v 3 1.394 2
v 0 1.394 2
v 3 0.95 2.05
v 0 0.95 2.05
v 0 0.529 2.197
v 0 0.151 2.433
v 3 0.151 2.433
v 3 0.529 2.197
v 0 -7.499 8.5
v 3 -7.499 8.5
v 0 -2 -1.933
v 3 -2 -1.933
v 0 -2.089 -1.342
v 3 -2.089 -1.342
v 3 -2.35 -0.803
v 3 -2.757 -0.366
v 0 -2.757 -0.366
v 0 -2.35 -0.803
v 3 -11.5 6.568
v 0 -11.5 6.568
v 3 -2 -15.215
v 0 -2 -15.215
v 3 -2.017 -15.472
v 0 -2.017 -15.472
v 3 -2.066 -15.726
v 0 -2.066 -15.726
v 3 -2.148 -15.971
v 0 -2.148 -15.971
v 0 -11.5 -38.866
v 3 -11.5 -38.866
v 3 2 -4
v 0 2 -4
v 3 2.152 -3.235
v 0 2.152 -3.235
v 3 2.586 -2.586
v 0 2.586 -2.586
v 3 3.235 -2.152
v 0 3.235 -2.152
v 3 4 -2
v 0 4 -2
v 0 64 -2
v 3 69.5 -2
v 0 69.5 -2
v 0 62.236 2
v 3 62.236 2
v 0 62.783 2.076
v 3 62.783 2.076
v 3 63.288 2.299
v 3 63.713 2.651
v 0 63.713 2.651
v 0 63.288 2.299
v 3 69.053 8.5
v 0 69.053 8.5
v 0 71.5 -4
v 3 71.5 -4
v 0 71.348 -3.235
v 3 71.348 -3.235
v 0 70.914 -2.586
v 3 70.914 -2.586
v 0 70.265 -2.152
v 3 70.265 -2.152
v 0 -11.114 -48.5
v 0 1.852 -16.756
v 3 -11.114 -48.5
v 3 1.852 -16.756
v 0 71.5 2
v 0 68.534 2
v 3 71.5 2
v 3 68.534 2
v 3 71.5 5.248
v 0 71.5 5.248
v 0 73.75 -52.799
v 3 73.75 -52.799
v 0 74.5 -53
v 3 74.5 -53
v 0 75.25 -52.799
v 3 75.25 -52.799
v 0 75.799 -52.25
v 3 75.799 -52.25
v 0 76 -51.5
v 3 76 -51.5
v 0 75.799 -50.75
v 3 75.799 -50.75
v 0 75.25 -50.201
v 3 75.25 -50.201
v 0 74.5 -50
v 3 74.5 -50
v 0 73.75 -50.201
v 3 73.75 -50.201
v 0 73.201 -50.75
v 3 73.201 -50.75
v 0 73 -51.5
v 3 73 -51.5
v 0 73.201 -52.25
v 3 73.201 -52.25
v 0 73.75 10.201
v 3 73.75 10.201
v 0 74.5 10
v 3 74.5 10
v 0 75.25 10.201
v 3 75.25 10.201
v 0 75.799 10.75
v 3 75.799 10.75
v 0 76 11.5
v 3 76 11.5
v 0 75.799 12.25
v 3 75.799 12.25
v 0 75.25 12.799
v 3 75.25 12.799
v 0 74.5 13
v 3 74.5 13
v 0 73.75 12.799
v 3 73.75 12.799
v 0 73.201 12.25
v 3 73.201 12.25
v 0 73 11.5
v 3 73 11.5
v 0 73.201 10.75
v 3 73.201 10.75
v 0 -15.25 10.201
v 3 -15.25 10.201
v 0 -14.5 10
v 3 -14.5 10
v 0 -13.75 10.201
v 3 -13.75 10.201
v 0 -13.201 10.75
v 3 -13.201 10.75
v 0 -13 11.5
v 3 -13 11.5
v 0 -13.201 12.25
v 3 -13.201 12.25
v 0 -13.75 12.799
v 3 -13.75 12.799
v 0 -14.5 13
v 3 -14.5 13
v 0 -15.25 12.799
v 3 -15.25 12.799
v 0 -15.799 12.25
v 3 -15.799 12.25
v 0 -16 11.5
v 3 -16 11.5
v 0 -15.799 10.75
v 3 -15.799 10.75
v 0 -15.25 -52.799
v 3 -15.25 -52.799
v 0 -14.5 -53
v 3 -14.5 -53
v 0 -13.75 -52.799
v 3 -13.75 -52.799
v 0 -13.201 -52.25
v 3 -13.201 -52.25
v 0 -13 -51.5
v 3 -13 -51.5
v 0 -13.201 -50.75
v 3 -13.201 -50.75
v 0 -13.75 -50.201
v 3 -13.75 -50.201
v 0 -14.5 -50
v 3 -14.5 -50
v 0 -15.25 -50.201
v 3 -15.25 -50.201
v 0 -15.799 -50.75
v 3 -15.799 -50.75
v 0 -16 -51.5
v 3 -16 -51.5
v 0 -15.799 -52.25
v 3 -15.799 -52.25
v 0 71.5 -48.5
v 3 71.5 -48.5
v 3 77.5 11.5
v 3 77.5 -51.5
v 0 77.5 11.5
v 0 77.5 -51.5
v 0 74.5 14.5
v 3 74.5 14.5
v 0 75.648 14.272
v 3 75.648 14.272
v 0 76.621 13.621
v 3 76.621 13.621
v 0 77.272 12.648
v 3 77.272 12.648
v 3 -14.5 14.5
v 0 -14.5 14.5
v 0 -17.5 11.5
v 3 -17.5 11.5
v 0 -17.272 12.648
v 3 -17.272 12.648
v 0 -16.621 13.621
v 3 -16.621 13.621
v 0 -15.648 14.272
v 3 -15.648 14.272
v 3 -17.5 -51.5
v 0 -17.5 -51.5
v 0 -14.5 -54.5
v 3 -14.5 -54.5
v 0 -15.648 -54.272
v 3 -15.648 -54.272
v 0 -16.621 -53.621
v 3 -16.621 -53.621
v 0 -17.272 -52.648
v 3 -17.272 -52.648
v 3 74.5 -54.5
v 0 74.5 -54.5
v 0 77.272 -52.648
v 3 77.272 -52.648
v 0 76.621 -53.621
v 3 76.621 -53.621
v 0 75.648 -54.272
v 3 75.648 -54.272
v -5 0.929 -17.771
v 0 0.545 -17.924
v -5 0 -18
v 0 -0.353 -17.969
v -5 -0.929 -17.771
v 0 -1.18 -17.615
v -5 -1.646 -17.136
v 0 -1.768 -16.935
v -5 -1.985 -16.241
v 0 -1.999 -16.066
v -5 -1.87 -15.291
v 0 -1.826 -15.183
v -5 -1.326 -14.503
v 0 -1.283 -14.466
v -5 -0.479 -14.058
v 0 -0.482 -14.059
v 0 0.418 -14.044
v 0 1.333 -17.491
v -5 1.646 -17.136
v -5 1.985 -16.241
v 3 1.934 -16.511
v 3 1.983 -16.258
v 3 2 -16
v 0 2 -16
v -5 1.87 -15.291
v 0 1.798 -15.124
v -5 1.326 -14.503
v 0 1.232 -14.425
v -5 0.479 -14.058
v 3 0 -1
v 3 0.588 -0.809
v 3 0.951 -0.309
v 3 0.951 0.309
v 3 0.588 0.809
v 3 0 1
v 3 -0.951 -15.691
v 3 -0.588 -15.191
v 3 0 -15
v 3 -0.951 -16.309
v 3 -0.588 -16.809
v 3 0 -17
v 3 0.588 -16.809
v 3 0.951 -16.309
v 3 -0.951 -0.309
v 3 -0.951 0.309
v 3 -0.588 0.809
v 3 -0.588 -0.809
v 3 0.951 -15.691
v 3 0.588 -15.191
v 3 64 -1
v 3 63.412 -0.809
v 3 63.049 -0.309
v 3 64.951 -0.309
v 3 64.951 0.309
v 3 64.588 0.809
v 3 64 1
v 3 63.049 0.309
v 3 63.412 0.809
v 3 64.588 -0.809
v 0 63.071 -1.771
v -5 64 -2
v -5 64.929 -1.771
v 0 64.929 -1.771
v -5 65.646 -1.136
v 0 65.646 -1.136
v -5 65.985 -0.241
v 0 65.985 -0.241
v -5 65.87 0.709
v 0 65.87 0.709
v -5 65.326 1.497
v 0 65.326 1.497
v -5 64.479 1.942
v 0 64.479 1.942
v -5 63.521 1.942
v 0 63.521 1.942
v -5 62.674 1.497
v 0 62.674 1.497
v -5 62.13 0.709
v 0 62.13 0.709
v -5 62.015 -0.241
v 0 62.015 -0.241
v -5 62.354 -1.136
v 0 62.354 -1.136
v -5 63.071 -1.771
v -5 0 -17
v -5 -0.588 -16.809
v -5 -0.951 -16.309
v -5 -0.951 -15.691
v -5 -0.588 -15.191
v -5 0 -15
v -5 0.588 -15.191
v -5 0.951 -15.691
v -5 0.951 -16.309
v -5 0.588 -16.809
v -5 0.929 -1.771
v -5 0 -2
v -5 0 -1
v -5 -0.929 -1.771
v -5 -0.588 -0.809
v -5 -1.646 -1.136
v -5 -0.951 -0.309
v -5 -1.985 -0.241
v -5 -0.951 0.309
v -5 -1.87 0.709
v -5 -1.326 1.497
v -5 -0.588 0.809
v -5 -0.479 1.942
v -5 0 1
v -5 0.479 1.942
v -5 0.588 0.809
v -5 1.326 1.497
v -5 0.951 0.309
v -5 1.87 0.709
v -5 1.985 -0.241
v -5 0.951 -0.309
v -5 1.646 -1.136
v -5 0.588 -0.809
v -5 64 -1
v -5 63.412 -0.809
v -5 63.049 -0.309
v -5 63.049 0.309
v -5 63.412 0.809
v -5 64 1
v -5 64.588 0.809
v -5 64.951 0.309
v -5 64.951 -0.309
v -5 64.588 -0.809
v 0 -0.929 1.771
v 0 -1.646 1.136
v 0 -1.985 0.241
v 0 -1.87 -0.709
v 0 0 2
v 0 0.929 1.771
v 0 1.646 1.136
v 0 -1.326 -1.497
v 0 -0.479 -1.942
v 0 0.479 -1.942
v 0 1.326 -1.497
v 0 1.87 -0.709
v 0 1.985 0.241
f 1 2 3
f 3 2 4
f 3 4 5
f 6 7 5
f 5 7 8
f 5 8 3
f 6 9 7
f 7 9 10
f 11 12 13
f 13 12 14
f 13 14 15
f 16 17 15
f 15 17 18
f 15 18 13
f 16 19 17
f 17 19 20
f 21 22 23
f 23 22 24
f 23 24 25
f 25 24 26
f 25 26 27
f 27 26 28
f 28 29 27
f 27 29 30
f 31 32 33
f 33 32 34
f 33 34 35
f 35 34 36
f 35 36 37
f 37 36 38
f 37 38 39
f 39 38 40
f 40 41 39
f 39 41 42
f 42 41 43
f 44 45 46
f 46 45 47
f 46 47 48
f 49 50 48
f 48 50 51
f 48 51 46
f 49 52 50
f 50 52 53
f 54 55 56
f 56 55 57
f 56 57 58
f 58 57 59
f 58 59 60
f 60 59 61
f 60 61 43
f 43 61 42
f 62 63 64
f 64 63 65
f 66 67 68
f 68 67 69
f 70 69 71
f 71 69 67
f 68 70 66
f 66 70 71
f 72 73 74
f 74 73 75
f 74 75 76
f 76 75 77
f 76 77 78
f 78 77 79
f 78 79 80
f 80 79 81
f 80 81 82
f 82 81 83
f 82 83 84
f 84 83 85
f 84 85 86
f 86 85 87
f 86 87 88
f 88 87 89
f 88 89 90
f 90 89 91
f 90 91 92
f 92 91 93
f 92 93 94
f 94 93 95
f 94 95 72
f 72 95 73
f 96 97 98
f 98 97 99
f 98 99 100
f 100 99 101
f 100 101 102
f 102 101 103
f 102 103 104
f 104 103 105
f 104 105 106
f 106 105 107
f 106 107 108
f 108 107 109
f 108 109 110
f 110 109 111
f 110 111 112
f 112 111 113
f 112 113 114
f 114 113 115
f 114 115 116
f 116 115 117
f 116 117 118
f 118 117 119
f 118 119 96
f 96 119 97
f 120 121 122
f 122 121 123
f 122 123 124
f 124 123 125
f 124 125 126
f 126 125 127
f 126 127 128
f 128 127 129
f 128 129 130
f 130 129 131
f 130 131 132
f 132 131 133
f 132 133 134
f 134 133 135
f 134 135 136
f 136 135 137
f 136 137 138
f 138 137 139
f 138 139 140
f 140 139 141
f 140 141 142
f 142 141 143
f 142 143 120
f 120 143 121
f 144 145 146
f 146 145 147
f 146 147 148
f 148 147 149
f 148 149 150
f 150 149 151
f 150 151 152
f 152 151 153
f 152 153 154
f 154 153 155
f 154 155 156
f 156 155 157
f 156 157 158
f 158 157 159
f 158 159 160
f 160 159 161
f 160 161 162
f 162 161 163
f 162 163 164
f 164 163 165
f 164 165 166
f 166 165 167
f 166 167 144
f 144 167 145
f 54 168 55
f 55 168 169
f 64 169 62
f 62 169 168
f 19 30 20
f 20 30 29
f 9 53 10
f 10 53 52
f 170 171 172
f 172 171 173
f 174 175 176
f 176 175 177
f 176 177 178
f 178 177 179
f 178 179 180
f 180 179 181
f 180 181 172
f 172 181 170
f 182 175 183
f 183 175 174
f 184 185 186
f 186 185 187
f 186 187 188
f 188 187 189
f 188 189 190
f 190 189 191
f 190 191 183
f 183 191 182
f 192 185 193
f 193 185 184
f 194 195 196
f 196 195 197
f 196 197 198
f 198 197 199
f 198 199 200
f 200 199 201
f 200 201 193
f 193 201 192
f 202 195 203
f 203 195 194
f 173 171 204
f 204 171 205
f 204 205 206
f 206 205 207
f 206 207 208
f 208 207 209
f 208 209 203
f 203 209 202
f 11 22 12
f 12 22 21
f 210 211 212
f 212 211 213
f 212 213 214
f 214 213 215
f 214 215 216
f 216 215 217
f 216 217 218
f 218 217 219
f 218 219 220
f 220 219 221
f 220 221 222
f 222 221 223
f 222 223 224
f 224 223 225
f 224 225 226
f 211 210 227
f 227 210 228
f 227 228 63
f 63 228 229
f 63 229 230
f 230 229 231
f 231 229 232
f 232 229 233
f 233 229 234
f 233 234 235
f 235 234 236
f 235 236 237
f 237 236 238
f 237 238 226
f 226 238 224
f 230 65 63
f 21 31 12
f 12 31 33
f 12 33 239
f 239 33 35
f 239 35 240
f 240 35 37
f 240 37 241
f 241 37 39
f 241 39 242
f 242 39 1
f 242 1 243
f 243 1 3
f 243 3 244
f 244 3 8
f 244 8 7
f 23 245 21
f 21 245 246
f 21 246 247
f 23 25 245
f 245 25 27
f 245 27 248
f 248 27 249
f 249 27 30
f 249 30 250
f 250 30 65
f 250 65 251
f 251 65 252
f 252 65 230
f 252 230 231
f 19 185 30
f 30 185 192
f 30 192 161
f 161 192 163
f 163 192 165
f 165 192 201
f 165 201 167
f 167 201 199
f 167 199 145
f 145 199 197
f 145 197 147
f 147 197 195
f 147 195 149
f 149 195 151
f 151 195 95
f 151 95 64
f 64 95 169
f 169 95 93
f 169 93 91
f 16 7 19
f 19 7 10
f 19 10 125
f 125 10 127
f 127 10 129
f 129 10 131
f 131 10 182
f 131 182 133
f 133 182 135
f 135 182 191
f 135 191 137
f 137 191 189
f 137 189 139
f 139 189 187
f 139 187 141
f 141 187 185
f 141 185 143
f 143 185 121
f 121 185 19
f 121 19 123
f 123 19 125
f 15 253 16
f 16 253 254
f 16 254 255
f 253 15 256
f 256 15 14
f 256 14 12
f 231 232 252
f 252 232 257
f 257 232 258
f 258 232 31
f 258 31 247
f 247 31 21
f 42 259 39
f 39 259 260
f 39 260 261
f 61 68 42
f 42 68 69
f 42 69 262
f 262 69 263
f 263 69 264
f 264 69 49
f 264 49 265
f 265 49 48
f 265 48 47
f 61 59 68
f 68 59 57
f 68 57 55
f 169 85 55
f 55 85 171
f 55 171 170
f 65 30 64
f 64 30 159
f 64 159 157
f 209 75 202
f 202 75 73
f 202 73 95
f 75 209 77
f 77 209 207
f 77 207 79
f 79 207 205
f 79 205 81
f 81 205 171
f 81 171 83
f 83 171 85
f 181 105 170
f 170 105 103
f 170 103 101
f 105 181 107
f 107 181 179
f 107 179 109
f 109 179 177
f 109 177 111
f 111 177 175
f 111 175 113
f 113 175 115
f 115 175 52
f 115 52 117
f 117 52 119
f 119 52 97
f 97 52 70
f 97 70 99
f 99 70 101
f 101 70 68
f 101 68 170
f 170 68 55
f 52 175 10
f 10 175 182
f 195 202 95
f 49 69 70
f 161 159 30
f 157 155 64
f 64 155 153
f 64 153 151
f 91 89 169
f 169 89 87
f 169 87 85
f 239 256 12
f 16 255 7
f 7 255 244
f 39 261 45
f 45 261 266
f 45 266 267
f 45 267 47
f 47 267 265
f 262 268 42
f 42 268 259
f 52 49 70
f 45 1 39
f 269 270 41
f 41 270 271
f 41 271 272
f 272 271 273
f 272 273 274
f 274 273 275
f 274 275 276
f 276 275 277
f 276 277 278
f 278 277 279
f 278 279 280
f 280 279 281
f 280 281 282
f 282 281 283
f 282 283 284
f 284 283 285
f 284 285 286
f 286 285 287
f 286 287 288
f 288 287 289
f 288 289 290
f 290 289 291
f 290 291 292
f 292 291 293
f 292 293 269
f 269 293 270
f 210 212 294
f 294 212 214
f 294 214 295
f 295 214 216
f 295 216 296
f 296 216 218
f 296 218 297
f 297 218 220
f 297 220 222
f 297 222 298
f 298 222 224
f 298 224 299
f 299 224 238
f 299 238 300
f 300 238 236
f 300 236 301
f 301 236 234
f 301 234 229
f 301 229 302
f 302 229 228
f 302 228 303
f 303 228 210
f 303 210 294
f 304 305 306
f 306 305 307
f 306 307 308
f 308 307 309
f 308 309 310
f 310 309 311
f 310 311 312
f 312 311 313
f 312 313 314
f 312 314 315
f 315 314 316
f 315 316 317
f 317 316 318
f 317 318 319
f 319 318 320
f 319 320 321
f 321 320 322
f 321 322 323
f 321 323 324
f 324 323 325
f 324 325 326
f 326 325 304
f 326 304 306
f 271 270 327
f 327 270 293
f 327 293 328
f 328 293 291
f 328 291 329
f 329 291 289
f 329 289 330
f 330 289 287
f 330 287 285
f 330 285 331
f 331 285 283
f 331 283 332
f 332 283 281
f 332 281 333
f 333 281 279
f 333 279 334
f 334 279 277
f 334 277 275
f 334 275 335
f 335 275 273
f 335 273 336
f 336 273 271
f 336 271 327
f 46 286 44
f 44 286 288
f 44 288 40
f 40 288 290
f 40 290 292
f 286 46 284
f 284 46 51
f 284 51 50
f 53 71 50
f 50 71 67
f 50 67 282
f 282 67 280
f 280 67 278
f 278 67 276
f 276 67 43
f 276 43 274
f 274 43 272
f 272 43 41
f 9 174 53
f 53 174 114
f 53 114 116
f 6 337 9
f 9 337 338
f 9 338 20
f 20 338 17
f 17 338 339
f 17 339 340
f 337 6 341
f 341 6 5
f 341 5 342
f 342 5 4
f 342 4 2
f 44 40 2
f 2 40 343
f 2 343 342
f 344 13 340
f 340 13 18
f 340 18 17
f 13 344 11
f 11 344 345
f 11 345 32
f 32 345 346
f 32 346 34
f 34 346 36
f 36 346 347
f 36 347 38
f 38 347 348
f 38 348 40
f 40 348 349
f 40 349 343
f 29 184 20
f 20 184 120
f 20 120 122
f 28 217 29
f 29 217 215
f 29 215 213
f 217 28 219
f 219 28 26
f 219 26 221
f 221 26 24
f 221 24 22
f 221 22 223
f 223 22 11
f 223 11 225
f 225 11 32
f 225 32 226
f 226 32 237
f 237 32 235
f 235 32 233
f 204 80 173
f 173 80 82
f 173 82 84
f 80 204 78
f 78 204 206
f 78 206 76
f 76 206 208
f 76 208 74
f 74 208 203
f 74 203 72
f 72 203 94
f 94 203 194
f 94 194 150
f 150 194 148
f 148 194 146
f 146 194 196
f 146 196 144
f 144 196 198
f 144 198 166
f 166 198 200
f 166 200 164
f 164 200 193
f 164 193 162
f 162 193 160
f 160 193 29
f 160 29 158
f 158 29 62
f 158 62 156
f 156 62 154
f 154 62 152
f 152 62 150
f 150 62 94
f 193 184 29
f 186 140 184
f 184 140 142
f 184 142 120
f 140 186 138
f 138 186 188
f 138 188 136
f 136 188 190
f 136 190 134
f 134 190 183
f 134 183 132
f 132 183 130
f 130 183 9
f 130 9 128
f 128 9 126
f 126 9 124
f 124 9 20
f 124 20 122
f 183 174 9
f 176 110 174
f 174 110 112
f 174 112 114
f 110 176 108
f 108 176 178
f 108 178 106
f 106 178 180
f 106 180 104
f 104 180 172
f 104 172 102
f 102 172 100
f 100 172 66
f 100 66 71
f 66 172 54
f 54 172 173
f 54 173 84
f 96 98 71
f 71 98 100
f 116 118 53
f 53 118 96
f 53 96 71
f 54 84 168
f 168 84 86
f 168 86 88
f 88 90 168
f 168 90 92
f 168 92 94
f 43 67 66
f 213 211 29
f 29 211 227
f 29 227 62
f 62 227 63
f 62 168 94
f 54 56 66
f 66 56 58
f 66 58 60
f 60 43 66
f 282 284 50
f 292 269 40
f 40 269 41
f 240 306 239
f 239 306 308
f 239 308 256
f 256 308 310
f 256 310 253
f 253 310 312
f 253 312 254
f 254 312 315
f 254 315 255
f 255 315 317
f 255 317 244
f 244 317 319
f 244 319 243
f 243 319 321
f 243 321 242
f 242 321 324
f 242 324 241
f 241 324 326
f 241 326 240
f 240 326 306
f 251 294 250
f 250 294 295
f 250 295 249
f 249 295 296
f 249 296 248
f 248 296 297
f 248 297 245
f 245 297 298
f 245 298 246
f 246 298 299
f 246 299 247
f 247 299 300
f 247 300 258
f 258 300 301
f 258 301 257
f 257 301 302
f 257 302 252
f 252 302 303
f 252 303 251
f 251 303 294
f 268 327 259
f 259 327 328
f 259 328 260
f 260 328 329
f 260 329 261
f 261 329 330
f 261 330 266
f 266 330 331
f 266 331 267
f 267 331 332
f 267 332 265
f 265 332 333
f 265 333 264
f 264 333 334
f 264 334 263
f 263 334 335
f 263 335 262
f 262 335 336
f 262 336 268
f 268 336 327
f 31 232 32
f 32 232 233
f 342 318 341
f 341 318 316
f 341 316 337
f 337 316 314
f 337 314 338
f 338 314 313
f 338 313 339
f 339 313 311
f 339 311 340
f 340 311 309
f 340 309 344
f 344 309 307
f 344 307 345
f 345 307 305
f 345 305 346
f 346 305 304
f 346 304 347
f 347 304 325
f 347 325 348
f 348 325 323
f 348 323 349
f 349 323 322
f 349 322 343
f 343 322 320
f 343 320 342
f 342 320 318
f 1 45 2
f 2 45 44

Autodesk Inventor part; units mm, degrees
ref_plane "YZ Plane" through (0, 0, 0) normal (1, 0, 0) x (0, 1, 0)
ref_plane "XZ Plane" through (0, 0, 0) normal (0, 1, 0) x (-1, 0, 0)
ref_plane "XY Plane" through (0, 0, 0) normal (0, 0, 1) x (1, 0, 0)
sketch "Sketch1" plane through (0, 0, 0) normal (1, 0, 0) x (0, 1, 0)
  line L0 (0, 0) -> (0, -16)
  circle A0 centre (0, 0) radius 1
  circle A1 centre (0, -16) radius 1
  line L1 (0, 0) -> (64, 0)
  circle A2 centre (64, 0) radius 1
  line L2 (64, 0) -> (0, 0) construction
  line L3 (64, 2) -> (0, 2)
  line L4 (0, -2) -> (64, -2)
  arc A3 (64, -2) -> (64, 2) centre (64, 0) ccw
  arc A4 (0, 2) -> (0, -2) centre (0, 0) ccw
  line L5 (0, 0) -> (0, -16) construction
  line L6 (-2, 0) -> (-2, -16)
  line L7 (2, -16) -> (2, 0)
  arc A5 (2, 0) -> (-2, 0) centre (0, 0) ccw
  arc A6 (-2, -16) -> (2, -16) centre (0, -16) ccw
  point P0 (32, 0)
  point P1 (0, -8)
  point P2 (2, -2)
  dimension "d0" = 16
  dimension "d1" = 2
  dimension "d2" = 2
  dimension "d3" = 64
  dimension "d4" = 2
  dimension "d5" = 4
  dimension "d6" = 4
extrude "Extrusion1" add sketch "Sketch1" along normal blind 3 contours A0 L1 L7 L4 L0 | L0 A4 A5 L1 A0 | L4 L7 A6 L6 A4 | A5 L3 A3 L4 L7
sketch "Sketch2" plane through (3, 0, 0) normal (1, 0, 0) x (0, 0, -1)
  circle A0 centre (0, 64) radius 1 projected
  circle A1 centre (0, 64) radius 1
  circle A2 centre (0, 64) radius 2
  circle A3 centre (0, 0) radius 1
  circle A4 centre (0, 0) radius 2
  circle A5 centre (16, 0) radius 1 projected
  circle A6 centre (16, 0) radius 1
  circle A7 centre (16, 0) radius 2
  dimension "d9" = 2
  dimension "d10" = 4
  dimension "d11" = 2
  dimension "d12" = 4
extrude "Extrusion2" add sketch "Sketch2" against normal blind 8
sketch "Sketch3" plane through (3, 0, 0) normal (1, 0, 0) x (0, 0, -1)
  arc A0 (0, -2) -> (-2, 0) centre (0, 0) ccw projected
  line L0 (0, 0) -> (0, 30)
  line L1 (0, 30) -> (20, 30)
  line L2 (-11.5, 74.5) -> (51.5, 74.5)
  line L3 (51.5, 74.5) -> (51.5, -14.5)
  line L4 (51.5, -14.5) -> (-11.5, -14.5)
  line L5 (-11.5, -14.5) -> (-11.5, 74.5)
  line L6 (-11.5, 74.5) -> (51.5, -14.5) construction
  line L7 (51.5, 74.5) -> (-11.5, -14.5) construction
  circle A1 centre (-11.5, 74.5) radius 1.5
  circle A2 centre (51.5, 74.5) radius 1.5
  circle A3 centre (51.5, -14.5) radius 1.5
  circle A4 centre (-11.5, -14.5) radius 1.5
  line L8 (-11.5, -14.5) -> (51.5, -14.5) construction
  line L9 (-11.5, -17.5) -> (51.5, -17.5)
  line L10 (51.5, -11.5) -> (-11.5, -11.5)
  arc A5 (-11.5, -11.5) -> (-11.5, -17.5) centre (-11.5, -14.5) ccw
  arc A6 (51.5, -17.5) -> (51.5, -11.5) centre (51.5, -14.5) ccw
  line L11 (51.5, -14.5) -> (51.5, 74.5) construction
  line L12 (54.5, -14.5) -> (54.5, 74.5)
  line L13 (48.5, 74.5) -> (48.5, -14.5)
  arc A7 (48.5, -14.5) -> (54.5, -14.5) centre (51.5, -14.5) ccw
  arc A8 (54.5, 74.5) -> (48.5, 74.5) centre (51.5, 74.5) ccw
  line L14 (51.5, 74.5) -> (-11.5, 74.5) construction
  line L15 (51.5, 77.5) -> (-11.5, 77.5)
  line L16 (-11.5, 71.5) -> (51.5, 71.5)
  arc A9 (51.5, 71.5) -> (51.5, 77.5) centre (51.5, 74.5) ccw
  arc A10 (-11.5, 77.5) -> (-11.5, 71.5) centre (-11.5, 74.5) ccw
  line L17 (-11.5, 74.5) -> (-11.5, -14.5) construction
  line L18 (-14.5, 74.5) -> (-14.5, -14.5)
  line L19 (-8.5, -14.5) -> (-8.5, 74.5)
  arc A11 (-8.5, 74.5) -> (-14.5, 74.5) centre (-11.5, 74.5) ccw
  arc A12 (-14.5, -14.5) -> (-8.5, -14.5) centre (-11.5, -14.5) ccw
  point P0 (20, -14.5)
  point P1 (51.5, 30)
  point P2 (20, 74.5)
  point P3 (-11.5, 30)
  point P4 (-8.5, -11.5)
  point P5 (-8.5, 71.5)
  point P6 (48.5, 71.5)
  point P7 (48.5, -11.5)
  point P8 (54.5, -14.5)
  point P9 (51.5, 77.5)
  point P10 (-14.5, 74.5)
  point P11 (-14.5, -14.5)
  dimension "d15" = 30
  dimension "d16" = 20
  dimension "d17" = 63
  dimension "d18" = 89
  dimension "d19" = 3
  dimension "d20" = 3
  dimension "d21" = 3
  dimension "d22" = 3
  dimension "d23" = 6
  dimension "d24" = 6
  dimension "d25" = 6
  dimension "d26" = 6
extrude "Extrusion3" add sketch "Sketch3" against normal blind 3 contours A1 L5 A10 A11 L2 | L2 L19 L16 L5 A1 | A11 L15 A8 L2 | L2 L13 L16 L19 | L16 L19 L10 L5 | L5 A5 L18 A10 | A8 A9 L3 A2 L2 | L2 A2 L3 L16 L13 | L10 L19 L4 A4 L5 | L5 A4 L4 A12 A5 | L16 L3 L10 L13 | L10 L13 L4 L19 | L10 L3 A3 L4 L13 | A9 L12 A6 L3 | L4 A7 L9 A12 | A6 A7 L4 A3 L3
sketch "Sketch4" plane through (3, 0, 0) normal (1, 0, 0) x (0, 0, -1)
  circle A0 centre (-11.5, 74.5) radius 1.5 projected
  circle A1 centre (0, 64) radius 1 projected
  line L0 (-11.5, 74.5) -> (0, 64) construction
  line L1 (-12.8485, 73.023) -> (-1.3485, 62.523)
  line L2 (1.3485, 65.477) -> (-10.1515, 75.977)
  arc A2 (-10.1515, 75.977) -> (-12.8485, 73.023) centre (-11.5, 74.5) ccw
  arc A3 (-1.3485, 62.523) -> (1.3485, 65.477) centre (0, 64) ccw
  circle A4 centre (0, 0) radius 1 projected
  circle A5 centre (-11.5, -14.5) radius 1.5 projected
  line L3 (0, 0) -> (-11.5, -14.5) construction
  line L4 (-1.567, 1.2428) -> (-13.067, -13.2572)
  line L5 (-9.933, -15.7428) -> (1.567, -1.2428)
  arc A6 (1.567, -1.2428) -> (-1.567, 1.2428) centre (0, 0) ccw
  arc A7 (-13.067, -13.2572) -> (-9.933, -15.7428) centre (-11.5, -14.5) ccw
  circle A8 centre (16, 0) radius 1 projected
  circle A9 centre (51.5, -14.5) radius 1.5 projected
  line L6 (16, 0) -> (51.5, -14.5) construction
  line L7 (15.2437, -1.8515) -> (50.7437, -16.3515)
  line L8 (52.2563, -12.6485) -> (16.7563, 1.8515)
  arc A10 (16.7563, 1.8515) -> (15.2437, -1.8515) centre (16, 0) ccw
  arc A11 (50.7437, -16.3515) -> (52.2563, -12.6485) centre (51.5, -14.5) ccw
  circle A12 centre (51.5, 74.5) radius 1.5 projected
  line L9 (0, 64) -> (51.5, 74.5) construction
  line L10 (0.3995, 62.0403) -> (51.8995, 72.5403)
  line L11 (51.1005, 76.4597) -> (-0.3995, 65.9597)
  arc A13 (-0.3995, 65.9597) -> (0.3995, 62.0403) centre (0, 64) ccw
  arc A14 (51.8995, 72.5403) -> (51.1005, 76.4597) centre (51.5, 74.5) ccw
  line L12 (16, 0) -> (51.5, 74.5) construction
  line L13 (17.8055, -0.8603) -> (53.3055, 73.6397)
  line L14 (49.6945, 75.3603) -> (14.1945, 0.8603)
  arc A15 (14.1945, 0.8603) -> (17.8055, -0.8603) centre (16, 0) ccw
  arc A16 (53.3055, 73.6397) -> (49.6945, 75.3603) centre (51.5, 74.5) ccw
  line L15 (0, 64) -> (0, 74.8995) construction
  line L16 (2, 64) -> (2, 74.8995)
  line L17 (-2, 74.8995) -> (-2, 64)
  arc A17 (-2, 64) -> (2, 64) centre (0, 64) ccw
  arc A18 (2, 74.8995) -> (-2, 74.8995) centre (0, 74.8995) ccw
  point P0 (-5.75, 69.25)
  point P1 (-5.75, -7.25)
  point P2 (33.75, -7.25)
  point P3 (25.75, 69.25)
  point P4 (33.75, 37.25)
  point P5 (-1.3485, 62.523)
  point P6 (0.5973, 66.1629)
  point P7 (47.9689, 71.7389)
  point P8 (18.7162, 1.0509)
  point P9 (-1.3485, 62.523)
  point P10 (0, 69.4498)
  point P11 (-2, 68.5343)
  dimension "d29" = 4
  dimension "d30" = 4
  dimension "d31" = 4
  dimension "d45" = 4
extrude "Extrusion4" add sketch "Sketch4" against normal blind 3 contours A2 L2 L17 A13 L1 | A13 L11 L2 A3 | L17 L2 L11 A13 | L17 A18 L16 L11 L2 | A3 L2 L11 L16 | L14 A16 A14 L10 | A10 L8 L13 A15 | A15 L13 L8 A11 L7 | A6 L5 A7 L4
fillet "Fillet2" radius 2 6 edges at (1.5, 71.5, -2) (1.5, 63.1178, 2) (1.5, 2, -2) (1.5, -2, -15.6073) (1.5, -2, -0.9664) (1.5, 0.6968, 2)
properties part number "individual_servodriver_support"
